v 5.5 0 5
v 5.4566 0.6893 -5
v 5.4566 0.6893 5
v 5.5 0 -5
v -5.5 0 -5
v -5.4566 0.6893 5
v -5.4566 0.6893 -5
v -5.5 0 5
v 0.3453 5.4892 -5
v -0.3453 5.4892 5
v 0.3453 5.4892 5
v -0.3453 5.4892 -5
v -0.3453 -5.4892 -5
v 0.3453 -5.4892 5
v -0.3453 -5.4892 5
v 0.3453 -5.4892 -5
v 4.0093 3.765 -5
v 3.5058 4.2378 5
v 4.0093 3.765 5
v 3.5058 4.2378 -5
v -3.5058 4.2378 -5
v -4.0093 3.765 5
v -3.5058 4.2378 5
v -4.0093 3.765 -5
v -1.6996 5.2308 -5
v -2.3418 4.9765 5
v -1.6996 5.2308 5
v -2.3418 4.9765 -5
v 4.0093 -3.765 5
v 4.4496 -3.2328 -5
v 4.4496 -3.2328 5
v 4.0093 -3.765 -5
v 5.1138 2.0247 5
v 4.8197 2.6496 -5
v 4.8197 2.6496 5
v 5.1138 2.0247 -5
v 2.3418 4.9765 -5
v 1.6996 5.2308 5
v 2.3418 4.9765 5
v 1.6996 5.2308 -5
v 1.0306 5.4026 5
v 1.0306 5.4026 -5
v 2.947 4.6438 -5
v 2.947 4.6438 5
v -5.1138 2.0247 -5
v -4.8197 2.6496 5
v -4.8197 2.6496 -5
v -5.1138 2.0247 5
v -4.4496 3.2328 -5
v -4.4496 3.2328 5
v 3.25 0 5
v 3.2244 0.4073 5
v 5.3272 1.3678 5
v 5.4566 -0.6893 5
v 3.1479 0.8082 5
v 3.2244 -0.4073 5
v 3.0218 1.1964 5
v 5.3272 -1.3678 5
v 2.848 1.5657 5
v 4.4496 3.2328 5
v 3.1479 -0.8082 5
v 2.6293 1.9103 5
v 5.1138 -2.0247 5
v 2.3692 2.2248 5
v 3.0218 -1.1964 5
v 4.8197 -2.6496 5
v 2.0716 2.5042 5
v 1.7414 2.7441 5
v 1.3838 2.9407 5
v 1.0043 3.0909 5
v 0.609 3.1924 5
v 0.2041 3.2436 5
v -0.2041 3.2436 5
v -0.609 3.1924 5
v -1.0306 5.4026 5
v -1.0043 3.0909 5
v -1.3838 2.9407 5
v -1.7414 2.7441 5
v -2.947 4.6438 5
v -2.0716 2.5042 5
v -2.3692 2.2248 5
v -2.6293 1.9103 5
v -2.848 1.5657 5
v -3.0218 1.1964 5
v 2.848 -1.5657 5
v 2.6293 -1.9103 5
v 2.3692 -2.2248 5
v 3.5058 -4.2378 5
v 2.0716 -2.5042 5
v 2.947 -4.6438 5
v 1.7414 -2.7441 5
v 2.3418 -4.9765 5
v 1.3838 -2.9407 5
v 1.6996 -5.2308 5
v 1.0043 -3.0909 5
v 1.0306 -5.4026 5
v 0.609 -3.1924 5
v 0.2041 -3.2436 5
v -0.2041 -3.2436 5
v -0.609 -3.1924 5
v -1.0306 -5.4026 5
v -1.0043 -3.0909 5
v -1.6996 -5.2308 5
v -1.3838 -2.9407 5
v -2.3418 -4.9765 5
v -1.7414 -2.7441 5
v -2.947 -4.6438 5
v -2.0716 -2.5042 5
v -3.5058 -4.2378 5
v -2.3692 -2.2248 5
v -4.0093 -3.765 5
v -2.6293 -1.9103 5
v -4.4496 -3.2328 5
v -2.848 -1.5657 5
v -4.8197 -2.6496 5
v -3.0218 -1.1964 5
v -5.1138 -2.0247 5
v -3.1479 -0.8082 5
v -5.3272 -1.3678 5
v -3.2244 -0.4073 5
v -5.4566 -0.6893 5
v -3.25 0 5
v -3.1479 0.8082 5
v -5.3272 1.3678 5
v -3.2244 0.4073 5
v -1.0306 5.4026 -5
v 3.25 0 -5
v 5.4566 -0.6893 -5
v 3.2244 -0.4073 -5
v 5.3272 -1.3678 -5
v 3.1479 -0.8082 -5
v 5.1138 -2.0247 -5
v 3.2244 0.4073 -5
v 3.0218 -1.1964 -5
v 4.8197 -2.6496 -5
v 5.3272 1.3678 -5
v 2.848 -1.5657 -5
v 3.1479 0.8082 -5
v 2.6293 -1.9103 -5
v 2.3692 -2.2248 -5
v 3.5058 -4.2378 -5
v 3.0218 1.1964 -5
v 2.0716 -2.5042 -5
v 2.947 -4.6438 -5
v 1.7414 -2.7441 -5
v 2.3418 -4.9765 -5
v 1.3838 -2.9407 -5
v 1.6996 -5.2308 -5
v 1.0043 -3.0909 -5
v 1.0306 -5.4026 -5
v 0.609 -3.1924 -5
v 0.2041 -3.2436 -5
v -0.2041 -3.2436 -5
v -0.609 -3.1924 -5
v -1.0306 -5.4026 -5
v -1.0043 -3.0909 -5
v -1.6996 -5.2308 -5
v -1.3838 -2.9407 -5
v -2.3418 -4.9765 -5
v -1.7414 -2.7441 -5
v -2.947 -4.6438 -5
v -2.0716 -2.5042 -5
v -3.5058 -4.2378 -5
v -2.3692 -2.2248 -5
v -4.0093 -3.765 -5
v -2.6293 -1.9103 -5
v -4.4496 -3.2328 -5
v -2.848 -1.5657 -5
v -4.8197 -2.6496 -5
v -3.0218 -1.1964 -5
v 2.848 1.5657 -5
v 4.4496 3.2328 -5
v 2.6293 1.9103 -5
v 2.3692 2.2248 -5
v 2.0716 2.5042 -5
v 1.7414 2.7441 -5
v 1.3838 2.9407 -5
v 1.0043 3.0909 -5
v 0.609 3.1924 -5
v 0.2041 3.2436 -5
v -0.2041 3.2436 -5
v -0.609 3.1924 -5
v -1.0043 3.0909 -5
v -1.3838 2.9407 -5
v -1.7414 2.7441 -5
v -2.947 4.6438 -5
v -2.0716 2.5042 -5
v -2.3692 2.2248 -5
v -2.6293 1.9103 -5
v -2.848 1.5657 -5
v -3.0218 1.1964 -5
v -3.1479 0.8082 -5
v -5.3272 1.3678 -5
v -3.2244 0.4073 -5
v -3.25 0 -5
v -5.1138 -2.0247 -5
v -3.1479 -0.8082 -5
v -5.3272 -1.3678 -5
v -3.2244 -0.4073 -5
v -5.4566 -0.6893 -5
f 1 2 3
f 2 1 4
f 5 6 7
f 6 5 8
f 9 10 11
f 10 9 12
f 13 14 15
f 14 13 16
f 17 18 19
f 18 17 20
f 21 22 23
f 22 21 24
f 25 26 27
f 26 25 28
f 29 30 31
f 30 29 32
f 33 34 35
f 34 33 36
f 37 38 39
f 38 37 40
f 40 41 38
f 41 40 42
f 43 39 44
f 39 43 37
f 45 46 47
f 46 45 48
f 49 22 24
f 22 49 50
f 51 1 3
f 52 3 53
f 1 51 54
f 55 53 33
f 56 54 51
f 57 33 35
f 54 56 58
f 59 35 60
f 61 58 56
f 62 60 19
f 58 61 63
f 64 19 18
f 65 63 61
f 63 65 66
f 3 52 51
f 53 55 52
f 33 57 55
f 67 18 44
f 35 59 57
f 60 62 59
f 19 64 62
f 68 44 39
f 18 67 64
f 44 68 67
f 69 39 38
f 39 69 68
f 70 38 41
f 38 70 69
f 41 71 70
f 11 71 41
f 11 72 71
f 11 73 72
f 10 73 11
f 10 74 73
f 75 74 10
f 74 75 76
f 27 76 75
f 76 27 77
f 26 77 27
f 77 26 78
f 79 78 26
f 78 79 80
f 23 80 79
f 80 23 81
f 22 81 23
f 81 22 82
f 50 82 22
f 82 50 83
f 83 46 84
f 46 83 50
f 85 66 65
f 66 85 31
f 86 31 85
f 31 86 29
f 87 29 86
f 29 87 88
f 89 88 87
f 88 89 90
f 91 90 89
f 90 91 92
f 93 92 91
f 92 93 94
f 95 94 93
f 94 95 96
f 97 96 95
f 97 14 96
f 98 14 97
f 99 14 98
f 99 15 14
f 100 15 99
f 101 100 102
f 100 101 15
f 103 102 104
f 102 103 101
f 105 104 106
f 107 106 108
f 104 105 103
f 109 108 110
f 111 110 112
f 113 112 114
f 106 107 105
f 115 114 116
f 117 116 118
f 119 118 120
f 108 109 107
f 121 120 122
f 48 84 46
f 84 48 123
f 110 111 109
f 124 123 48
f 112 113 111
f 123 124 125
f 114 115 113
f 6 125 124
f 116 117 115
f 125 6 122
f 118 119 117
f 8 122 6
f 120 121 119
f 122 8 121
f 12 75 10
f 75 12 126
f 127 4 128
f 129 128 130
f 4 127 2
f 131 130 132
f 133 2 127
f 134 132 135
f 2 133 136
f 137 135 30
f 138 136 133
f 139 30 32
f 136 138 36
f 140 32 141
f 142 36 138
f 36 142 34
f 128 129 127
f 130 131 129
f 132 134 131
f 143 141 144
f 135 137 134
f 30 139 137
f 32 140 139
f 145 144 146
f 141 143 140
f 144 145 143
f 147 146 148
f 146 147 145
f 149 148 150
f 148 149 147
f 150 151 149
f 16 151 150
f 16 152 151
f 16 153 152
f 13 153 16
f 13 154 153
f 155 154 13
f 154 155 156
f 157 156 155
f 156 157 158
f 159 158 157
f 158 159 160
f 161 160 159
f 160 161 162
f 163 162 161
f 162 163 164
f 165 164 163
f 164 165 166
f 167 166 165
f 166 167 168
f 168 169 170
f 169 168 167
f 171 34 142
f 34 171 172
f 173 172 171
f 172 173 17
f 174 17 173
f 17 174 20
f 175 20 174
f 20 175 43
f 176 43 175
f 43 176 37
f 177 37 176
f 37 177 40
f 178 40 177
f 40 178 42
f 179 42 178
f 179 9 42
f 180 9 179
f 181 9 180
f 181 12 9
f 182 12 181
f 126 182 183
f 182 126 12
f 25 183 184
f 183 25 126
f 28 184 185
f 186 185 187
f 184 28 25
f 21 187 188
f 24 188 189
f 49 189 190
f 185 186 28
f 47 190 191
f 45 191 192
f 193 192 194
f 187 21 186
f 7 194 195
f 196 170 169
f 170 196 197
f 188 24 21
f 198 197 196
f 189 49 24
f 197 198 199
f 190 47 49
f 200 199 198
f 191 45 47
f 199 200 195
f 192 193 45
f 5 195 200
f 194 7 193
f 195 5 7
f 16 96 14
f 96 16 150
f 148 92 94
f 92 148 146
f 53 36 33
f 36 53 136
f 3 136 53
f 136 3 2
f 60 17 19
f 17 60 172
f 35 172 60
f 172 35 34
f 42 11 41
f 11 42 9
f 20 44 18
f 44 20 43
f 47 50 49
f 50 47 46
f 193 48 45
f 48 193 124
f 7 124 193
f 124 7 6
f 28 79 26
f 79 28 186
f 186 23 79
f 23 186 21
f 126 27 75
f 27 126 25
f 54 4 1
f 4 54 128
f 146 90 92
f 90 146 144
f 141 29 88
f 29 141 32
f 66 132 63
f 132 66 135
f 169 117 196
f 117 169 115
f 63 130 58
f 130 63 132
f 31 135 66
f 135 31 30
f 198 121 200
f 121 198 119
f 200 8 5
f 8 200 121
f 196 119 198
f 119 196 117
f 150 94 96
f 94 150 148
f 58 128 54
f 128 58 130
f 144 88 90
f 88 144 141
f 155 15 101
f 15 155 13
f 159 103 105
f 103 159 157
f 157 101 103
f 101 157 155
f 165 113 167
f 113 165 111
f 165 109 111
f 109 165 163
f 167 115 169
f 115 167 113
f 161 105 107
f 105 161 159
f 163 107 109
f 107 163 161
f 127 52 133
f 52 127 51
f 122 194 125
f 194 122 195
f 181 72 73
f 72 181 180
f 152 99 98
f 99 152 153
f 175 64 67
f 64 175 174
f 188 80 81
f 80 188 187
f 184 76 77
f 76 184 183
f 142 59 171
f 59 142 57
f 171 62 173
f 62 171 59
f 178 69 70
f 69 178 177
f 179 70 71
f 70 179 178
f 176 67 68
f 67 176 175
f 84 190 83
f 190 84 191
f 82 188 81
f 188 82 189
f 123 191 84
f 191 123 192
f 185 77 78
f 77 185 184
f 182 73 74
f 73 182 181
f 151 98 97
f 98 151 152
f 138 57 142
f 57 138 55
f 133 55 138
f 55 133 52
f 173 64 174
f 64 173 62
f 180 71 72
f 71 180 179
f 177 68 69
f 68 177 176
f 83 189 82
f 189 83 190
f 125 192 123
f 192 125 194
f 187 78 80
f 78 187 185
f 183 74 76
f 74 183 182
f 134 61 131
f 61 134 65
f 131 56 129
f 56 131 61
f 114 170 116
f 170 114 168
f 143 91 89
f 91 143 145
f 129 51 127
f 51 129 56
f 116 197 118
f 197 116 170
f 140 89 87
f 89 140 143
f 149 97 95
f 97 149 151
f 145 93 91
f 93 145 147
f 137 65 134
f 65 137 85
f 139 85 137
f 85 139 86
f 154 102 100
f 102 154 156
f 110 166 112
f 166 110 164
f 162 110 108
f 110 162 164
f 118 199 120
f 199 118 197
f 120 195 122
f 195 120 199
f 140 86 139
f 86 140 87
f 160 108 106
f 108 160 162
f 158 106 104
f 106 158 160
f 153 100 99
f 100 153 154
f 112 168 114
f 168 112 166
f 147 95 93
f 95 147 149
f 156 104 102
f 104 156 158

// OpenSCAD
$fn = 50;


difference() {
	union() {
		translate(v = [0, 0, -5.0000000000]) {
			cylinder(h = 10, r = 5.5000000000);
		}
	}
	union() {
		translate(v = [0, 0, -100.0000000000]) {
			cylinder(h = 200, r = 3.2500000000);
		}
	}
}
